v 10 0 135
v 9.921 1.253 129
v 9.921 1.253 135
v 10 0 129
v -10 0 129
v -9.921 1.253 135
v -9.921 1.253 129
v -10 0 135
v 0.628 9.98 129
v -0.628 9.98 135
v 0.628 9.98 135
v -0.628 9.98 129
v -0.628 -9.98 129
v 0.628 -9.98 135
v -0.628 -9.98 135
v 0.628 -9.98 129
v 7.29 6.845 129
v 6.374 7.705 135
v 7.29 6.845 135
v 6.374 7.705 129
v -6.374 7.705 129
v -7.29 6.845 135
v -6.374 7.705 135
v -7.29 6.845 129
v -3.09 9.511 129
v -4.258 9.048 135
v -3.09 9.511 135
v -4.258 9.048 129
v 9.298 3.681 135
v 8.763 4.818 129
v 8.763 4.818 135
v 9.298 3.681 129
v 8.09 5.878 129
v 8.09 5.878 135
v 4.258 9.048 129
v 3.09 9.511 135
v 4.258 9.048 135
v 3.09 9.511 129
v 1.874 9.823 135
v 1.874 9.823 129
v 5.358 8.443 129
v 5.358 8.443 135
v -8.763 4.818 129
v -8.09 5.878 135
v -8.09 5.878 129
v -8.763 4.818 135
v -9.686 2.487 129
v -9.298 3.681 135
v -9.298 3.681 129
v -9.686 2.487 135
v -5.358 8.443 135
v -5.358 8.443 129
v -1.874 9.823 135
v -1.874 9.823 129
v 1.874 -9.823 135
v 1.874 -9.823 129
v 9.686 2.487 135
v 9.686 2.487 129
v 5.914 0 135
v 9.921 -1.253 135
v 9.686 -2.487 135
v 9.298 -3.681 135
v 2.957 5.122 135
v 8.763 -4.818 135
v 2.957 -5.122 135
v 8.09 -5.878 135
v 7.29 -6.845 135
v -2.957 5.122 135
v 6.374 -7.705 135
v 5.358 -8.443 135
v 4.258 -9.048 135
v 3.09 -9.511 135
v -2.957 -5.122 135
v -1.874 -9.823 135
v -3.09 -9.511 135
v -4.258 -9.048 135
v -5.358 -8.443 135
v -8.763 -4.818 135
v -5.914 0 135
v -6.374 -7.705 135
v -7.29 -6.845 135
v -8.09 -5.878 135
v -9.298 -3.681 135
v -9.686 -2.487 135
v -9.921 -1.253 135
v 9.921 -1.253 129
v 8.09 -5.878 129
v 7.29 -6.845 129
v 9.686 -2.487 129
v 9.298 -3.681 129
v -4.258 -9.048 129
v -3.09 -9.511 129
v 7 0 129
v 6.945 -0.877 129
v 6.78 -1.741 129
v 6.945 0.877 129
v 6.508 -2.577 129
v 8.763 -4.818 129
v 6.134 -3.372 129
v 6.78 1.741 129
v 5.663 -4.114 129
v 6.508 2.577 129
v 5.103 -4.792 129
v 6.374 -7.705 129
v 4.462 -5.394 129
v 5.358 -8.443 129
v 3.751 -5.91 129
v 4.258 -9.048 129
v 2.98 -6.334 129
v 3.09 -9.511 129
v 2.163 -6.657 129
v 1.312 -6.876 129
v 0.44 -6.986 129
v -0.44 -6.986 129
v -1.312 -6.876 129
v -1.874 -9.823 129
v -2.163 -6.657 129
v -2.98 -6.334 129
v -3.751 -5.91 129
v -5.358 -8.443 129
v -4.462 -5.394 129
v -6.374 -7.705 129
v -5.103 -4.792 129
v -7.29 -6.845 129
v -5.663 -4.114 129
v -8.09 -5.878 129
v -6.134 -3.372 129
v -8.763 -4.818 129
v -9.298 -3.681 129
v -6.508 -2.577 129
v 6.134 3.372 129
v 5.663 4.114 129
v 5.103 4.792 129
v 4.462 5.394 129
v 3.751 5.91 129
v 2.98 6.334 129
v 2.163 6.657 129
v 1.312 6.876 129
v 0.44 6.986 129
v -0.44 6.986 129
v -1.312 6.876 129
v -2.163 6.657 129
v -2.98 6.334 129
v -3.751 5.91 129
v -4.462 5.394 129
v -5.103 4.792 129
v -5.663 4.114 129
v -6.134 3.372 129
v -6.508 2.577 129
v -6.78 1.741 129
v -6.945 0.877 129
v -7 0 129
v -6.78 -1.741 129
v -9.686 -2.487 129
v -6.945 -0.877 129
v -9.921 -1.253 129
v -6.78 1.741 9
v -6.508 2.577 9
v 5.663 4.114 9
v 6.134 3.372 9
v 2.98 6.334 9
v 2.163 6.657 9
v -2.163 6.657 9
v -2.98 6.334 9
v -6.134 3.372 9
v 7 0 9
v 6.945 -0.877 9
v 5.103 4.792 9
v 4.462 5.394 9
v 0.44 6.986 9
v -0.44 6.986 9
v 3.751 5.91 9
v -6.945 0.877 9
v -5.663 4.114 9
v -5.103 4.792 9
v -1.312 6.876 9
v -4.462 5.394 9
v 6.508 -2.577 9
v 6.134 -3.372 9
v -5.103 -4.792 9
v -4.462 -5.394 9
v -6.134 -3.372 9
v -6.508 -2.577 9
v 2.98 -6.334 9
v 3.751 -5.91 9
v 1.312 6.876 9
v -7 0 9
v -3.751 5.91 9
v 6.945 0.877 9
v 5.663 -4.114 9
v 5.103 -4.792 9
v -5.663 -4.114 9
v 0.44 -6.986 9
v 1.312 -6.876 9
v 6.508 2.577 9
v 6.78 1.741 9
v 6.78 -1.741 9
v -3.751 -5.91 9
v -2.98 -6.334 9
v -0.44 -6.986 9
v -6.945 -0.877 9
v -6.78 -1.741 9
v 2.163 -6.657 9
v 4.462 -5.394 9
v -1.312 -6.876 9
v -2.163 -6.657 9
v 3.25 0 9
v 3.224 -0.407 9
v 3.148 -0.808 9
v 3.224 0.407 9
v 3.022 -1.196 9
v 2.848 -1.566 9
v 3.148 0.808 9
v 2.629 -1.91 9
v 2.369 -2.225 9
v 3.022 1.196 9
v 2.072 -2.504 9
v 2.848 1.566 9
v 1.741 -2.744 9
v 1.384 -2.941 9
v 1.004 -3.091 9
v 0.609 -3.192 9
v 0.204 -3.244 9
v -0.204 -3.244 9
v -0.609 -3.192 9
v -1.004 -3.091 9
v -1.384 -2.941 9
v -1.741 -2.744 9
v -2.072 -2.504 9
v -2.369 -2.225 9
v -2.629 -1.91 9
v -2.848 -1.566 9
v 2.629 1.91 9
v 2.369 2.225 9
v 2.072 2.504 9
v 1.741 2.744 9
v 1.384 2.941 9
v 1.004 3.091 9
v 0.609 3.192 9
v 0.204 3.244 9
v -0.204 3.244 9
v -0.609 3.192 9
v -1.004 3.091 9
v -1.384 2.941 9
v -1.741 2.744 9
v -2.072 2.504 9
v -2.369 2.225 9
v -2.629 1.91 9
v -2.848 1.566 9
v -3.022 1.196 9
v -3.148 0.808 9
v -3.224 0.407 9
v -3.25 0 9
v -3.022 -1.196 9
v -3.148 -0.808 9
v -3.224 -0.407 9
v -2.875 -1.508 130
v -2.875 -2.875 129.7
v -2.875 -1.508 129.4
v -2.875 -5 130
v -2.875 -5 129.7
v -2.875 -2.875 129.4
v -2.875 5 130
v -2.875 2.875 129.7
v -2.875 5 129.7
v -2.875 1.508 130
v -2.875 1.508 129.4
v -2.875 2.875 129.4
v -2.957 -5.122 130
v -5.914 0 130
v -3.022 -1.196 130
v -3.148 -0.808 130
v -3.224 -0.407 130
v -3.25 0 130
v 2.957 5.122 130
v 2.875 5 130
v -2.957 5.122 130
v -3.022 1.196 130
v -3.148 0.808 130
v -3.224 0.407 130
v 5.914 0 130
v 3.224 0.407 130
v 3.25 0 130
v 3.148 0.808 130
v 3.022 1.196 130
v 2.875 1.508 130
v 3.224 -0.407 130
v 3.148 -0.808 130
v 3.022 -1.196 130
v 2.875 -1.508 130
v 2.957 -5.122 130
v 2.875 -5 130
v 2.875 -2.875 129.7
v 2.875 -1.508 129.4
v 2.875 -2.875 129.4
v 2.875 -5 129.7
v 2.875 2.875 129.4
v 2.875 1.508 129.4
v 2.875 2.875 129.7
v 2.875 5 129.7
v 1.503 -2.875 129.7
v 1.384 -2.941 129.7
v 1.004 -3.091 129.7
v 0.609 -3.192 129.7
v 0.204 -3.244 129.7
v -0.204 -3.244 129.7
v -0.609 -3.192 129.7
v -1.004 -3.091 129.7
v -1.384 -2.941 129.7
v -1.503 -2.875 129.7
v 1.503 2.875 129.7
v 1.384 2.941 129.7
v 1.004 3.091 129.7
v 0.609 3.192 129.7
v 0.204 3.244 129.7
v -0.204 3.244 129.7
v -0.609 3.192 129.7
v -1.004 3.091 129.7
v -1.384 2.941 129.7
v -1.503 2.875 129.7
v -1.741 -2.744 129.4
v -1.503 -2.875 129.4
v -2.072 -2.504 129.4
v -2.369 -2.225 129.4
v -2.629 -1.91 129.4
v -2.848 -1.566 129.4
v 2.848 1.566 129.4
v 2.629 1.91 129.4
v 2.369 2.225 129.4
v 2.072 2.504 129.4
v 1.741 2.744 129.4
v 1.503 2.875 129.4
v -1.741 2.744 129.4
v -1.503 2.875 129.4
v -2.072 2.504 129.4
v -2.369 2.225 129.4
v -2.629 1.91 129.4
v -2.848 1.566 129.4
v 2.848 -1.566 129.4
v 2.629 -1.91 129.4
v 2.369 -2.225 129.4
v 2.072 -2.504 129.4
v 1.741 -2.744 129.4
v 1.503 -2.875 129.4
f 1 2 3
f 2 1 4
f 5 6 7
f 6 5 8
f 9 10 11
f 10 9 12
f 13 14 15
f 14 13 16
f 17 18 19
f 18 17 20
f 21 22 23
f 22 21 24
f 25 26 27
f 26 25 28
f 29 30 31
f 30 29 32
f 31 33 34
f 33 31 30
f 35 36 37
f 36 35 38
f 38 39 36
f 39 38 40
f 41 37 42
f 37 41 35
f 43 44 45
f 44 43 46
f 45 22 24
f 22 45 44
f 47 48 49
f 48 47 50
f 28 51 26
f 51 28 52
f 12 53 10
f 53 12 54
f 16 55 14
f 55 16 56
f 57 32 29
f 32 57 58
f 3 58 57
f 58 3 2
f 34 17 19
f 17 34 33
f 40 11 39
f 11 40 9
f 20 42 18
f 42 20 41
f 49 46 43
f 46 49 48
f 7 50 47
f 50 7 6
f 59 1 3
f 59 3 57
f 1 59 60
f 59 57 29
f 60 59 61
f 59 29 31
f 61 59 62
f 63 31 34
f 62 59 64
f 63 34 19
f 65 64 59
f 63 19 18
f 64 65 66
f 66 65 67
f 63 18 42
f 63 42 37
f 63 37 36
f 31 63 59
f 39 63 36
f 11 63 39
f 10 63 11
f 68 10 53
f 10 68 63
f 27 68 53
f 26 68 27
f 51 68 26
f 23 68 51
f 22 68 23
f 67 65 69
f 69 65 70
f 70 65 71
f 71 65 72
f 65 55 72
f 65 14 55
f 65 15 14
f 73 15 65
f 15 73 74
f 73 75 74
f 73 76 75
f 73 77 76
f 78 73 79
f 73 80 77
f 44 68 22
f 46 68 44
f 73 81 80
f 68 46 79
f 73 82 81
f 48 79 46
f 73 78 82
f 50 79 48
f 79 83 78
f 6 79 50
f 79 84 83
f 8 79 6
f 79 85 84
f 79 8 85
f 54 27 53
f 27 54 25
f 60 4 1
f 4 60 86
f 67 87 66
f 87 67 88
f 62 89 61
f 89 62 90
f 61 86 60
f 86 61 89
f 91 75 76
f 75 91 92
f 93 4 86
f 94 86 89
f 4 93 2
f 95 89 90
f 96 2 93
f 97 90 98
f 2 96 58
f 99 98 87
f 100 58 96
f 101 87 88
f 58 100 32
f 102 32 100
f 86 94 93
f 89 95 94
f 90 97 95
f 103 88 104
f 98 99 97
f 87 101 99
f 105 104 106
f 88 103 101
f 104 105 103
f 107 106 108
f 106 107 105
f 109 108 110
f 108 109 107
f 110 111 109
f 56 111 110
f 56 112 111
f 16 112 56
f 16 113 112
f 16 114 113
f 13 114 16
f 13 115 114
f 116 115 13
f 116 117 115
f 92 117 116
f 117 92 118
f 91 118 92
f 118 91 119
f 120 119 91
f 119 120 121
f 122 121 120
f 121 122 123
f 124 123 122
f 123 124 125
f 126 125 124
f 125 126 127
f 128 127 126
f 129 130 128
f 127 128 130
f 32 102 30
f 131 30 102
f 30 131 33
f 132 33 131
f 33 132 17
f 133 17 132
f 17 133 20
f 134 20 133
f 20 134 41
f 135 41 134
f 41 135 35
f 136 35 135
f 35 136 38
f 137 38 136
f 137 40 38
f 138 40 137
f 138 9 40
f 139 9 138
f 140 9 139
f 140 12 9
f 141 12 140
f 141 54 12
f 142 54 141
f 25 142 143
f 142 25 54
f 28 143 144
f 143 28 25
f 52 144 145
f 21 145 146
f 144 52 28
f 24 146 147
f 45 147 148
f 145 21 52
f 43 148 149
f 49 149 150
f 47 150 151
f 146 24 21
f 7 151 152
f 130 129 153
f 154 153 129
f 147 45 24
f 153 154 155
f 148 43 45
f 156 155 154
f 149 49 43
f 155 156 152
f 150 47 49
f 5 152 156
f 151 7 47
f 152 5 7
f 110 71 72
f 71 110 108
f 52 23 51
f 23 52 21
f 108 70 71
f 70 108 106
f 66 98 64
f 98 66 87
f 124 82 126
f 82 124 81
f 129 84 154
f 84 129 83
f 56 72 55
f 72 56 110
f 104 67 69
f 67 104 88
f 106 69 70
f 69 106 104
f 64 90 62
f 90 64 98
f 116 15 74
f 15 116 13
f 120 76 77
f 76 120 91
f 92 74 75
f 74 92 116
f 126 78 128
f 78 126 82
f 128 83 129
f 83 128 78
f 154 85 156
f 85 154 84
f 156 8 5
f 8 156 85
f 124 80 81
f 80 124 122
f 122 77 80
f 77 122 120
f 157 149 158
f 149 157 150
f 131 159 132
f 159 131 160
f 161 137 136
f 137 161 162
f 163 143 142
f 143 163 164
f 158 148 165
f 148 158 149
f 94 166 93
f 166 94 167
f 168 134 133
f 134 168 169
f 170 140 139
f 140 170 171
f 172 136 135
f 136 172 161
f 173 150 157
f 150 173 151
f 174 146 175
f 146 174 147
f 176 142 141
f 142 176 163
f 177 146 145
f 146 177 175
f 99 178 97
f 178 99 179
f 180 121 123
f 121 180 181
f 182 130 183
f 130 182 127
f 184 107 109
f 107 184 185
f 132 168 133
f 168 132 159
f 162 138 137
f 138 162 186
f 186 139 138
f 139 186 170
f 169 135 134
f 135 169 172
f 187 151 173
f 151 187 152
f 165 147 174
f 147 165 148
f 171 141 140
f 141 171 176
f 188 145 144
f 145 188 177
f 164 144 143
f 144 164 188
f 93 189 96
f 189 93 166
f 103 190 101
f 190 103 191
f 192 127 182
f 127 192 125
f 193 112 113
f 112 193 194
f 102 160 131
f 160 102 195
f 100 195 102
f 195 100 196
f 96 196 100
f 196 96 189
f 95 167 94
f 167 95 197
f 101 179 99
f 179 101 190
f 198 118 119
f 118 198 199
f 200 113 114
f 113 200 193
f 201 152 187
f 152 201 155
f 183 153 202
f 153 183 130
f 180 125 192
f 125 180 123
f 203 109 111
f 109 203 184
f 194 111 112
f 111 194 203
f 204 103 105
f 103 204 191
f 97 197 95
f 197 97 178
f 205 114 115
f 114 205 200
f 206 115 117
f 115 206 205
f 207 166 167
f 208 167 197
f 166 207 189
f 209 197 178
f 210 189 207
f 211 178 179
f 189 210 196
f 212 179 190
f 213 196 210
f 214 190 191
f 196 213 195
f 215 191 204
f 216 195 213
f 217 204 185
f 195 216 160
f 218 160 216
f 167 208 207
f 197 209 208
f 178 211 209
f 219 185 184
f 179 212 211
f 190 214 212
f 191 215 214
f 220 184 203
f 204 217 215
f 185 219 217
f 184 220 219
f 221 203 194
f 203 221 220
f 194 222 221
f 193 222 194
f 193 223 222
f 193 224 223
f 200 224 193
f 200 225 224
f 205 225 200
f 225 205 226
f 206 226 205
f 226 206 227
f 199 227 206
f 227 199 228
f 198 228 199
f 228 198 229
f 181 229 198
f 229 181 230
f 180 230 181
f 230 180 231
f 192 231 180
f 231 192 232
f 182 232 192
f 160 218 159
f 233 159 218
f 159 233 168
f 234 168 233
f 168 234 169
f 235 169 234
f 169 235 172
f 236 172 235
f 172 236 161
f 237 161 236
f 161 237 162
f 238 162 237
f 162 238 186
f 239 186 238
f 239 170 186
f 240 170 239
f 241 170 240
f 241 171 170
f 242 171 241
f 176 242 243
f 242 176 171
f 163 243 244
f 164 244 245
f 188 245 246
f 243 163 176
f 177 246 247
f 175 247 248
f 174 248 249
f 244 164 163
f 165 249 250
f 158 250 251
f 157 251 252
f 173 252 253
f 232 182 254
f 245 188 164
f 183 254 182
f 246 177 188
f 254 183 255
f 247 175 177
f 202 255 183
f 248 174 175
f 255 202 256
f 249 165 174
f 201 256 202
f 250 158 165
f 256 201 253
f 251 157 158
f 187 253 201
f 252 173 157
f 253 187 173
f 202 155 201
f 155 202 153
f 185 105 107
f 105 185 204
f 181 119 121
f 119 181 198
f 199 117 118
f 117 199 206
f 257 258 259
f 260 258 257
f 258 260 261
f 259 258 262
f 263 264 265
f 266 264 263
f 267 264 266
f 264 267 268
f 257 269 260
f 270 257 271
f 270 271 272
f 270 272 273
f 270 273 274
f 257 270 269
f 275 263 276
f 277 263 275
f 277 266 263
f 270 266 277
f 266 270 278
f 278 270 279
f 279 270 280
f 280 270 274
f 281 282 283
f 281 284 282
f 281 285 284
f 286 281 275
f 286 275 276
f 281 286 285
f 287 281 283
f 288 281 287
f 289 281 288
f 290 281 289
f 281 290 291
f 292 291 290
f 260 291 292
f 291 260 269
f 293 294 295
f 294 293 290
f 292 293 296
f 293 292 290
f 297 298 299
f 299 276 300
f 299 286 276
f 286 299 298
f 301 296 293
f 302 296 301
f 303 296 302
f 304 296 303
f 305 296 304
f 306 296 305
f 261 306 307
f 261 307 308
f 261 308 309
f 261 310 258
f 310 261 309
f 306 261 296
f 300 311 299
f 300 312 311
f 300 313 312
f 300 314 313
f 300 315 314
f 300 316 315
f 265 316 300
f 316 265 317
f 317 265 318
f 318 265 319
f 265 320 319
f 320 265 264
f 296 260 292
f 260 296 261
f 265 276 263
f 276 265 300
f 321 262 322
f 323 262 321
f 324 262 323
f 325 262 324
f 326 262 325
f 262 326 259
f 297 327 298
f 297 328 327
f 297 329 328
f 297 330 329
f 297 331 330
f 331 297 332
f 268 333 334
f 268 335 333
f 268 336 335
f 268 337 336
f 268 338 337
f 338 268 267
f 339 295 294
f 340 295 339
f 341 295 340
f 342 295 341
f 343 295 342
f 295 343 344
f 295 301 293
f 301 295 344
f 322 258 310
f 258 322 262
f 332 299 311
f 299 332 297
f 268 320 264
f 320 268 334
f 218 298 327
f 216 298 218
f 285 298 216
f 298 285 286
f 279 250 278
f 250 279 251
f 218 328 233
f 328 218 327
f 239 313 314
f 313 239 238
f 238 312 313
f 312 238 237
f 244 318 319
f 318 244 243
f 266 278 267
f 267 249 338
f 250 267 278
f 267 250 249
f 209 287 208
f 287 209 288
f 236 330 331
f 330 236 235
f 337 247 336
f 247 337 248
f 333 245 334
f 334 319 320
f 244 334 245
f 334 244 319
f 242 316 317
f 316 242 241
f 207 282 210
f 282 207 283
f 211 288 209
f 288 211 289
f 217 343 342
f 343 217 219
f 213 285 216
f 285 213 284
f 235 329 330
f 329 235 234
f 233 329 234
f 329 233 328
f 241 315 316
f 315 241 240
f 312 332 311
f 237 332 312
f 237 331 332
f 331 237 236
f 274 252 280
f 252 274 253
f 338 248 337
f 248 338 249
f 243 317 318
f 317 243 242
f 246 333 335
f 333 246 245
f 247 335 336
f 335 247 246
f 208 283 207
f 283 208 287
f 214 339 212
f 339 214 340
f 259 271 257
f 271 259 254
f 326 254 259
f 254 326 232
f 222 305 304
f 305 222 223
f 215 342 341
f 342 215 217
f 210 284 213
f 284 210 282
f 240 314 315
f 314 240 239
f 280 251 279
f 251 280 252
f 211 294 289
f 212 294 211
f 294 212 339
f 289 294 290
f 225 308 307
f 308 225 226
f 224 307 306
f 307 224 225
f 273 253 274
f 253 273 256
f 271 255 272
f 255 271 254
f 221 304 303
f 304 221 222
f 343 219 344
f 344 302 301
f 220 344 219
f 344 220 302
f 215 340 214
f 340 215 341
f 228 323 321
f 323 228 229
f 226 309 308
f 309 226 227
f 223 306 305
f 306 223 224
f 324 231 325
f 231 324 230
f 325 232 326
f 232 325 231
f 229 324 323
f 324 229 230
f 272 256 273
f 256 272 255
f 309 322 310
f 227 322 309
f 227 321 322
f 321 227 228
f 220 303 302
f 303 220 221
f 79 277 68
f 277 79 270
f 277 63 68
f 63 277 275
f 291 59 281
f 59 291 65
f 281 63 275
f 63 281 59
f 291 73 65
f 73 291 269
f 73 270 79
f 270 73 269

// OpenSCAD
$fn = 50;


difference() {
	union() {
		translate(v = [0, 0, 129.0000000000]) {
			cylinder(h = 6, r = 10.0000000000);
		}
		translate(v = [0, 0, 9.0000000000]) {
			cylinder(h = 126, r = 7.0000000000);
		}
	}
	union() {
		translate(v = [0, 0, 135]) {
			rotate(a = [0, 0, 0]) {
				difference() {
					union() {
						#translate(v = [-2.8750000000, -5.0000000000, -5.3000000000]) {
							cube(size = [5.7500000000, 10, 0.3000000000]);
						}
						#translate(v = [-2.8750000000, -2.8750000000, -5.6000000000]) {
							cube(size = [5.7500000000, 5.7500000000, 0.3000000000]);
						}
						#translate(v = [-2.8750000000, -5.0000000000, 0]) {
							cube(size = [5.7500000000, 10, 0.3000000000]);
						}
						#translate(v = [-2.8750000000, -2.8750000000, 0.3000000000]) {
							cube(size = [5.7500000000, 5.7500000000, 0.3000000000]);
						}
						#translate(v = [0, 0, -100.0000000000]) {
							cylinder(h = 200, r = 3.2500000000);
						}
						translate(v = [0, 0, -5]) {
							#linear_extrude(height = 5) {
								polygon(points = [[5.9142500000, 0.0000000000], [2.9571250000, 5.1218907443], [-2.9571250000, 5.1218907443], [-5.9142500000, 0.0000000000], [-2.9571250000, -5.1218907443], [2.9571250000, -5.1218907443]]);
							}
						}
						#translate(v = [-2.8750000000, -5.0000000000, -5.3000000000]) {
							cube(size = [5.7500000000, 10, 0.3000000000]);
						}
						#translate(v = [-2.8750000000, -2.8750000000, -5.6000000000]) {
							cube(size = [5.7500000000, 5.7500000000, 0.3000000000]);
						}
						#translate(v = [-2.8750000000, -5.0000000000, 0]) {
							cube(size = [5.7500000000, 10, 0.3000000000]);
						}
						#translate(v = [-2.8750000000, -2.8750000000, 0.3000000000]) {
							cube(size = [5.7500000000, 5.7500000000, 0.3000000000]);
						}
						#translate(v = [0, 0, -100.0000000000]) {
							cylinder(h = 200, r = 3.2500000000);
						}
						#translate(v = [-2.8750000000, -5.0000000000, -5.3000000000]) {
							cube(size = [5.7500000000, 10, 0.3000000000]);
						}
						#translate(v = [-2.8750000000, -2.8750000000, -5.6000000000]) {
							cube(size = [5.7500000000, 5.7500000000, 0.3000000000]);
						}
						#translate(v = [-2.8750000000, -5.0000000000, 0]) {
							cube(size = [5.7500000000, 10, 0.3000000000]);
						}
						#translate(v = [-2.8750000000, -2.8750000000, 0.3000000000]) {
							cube(size = [5.7500000000, 5.7500000000, 0.3000000000]);
						}
						#translate(v = [0, 0, -100.0000000000]) {
							cylinder(h = 200, r = 3.2500000000);
						}
					}
					union();
				}
			}
		}
		#translate(v = [0, 0, -100.0000000000]) {
			cylinder(h = 200, r = 3.2500000000);
		}
	}
}
